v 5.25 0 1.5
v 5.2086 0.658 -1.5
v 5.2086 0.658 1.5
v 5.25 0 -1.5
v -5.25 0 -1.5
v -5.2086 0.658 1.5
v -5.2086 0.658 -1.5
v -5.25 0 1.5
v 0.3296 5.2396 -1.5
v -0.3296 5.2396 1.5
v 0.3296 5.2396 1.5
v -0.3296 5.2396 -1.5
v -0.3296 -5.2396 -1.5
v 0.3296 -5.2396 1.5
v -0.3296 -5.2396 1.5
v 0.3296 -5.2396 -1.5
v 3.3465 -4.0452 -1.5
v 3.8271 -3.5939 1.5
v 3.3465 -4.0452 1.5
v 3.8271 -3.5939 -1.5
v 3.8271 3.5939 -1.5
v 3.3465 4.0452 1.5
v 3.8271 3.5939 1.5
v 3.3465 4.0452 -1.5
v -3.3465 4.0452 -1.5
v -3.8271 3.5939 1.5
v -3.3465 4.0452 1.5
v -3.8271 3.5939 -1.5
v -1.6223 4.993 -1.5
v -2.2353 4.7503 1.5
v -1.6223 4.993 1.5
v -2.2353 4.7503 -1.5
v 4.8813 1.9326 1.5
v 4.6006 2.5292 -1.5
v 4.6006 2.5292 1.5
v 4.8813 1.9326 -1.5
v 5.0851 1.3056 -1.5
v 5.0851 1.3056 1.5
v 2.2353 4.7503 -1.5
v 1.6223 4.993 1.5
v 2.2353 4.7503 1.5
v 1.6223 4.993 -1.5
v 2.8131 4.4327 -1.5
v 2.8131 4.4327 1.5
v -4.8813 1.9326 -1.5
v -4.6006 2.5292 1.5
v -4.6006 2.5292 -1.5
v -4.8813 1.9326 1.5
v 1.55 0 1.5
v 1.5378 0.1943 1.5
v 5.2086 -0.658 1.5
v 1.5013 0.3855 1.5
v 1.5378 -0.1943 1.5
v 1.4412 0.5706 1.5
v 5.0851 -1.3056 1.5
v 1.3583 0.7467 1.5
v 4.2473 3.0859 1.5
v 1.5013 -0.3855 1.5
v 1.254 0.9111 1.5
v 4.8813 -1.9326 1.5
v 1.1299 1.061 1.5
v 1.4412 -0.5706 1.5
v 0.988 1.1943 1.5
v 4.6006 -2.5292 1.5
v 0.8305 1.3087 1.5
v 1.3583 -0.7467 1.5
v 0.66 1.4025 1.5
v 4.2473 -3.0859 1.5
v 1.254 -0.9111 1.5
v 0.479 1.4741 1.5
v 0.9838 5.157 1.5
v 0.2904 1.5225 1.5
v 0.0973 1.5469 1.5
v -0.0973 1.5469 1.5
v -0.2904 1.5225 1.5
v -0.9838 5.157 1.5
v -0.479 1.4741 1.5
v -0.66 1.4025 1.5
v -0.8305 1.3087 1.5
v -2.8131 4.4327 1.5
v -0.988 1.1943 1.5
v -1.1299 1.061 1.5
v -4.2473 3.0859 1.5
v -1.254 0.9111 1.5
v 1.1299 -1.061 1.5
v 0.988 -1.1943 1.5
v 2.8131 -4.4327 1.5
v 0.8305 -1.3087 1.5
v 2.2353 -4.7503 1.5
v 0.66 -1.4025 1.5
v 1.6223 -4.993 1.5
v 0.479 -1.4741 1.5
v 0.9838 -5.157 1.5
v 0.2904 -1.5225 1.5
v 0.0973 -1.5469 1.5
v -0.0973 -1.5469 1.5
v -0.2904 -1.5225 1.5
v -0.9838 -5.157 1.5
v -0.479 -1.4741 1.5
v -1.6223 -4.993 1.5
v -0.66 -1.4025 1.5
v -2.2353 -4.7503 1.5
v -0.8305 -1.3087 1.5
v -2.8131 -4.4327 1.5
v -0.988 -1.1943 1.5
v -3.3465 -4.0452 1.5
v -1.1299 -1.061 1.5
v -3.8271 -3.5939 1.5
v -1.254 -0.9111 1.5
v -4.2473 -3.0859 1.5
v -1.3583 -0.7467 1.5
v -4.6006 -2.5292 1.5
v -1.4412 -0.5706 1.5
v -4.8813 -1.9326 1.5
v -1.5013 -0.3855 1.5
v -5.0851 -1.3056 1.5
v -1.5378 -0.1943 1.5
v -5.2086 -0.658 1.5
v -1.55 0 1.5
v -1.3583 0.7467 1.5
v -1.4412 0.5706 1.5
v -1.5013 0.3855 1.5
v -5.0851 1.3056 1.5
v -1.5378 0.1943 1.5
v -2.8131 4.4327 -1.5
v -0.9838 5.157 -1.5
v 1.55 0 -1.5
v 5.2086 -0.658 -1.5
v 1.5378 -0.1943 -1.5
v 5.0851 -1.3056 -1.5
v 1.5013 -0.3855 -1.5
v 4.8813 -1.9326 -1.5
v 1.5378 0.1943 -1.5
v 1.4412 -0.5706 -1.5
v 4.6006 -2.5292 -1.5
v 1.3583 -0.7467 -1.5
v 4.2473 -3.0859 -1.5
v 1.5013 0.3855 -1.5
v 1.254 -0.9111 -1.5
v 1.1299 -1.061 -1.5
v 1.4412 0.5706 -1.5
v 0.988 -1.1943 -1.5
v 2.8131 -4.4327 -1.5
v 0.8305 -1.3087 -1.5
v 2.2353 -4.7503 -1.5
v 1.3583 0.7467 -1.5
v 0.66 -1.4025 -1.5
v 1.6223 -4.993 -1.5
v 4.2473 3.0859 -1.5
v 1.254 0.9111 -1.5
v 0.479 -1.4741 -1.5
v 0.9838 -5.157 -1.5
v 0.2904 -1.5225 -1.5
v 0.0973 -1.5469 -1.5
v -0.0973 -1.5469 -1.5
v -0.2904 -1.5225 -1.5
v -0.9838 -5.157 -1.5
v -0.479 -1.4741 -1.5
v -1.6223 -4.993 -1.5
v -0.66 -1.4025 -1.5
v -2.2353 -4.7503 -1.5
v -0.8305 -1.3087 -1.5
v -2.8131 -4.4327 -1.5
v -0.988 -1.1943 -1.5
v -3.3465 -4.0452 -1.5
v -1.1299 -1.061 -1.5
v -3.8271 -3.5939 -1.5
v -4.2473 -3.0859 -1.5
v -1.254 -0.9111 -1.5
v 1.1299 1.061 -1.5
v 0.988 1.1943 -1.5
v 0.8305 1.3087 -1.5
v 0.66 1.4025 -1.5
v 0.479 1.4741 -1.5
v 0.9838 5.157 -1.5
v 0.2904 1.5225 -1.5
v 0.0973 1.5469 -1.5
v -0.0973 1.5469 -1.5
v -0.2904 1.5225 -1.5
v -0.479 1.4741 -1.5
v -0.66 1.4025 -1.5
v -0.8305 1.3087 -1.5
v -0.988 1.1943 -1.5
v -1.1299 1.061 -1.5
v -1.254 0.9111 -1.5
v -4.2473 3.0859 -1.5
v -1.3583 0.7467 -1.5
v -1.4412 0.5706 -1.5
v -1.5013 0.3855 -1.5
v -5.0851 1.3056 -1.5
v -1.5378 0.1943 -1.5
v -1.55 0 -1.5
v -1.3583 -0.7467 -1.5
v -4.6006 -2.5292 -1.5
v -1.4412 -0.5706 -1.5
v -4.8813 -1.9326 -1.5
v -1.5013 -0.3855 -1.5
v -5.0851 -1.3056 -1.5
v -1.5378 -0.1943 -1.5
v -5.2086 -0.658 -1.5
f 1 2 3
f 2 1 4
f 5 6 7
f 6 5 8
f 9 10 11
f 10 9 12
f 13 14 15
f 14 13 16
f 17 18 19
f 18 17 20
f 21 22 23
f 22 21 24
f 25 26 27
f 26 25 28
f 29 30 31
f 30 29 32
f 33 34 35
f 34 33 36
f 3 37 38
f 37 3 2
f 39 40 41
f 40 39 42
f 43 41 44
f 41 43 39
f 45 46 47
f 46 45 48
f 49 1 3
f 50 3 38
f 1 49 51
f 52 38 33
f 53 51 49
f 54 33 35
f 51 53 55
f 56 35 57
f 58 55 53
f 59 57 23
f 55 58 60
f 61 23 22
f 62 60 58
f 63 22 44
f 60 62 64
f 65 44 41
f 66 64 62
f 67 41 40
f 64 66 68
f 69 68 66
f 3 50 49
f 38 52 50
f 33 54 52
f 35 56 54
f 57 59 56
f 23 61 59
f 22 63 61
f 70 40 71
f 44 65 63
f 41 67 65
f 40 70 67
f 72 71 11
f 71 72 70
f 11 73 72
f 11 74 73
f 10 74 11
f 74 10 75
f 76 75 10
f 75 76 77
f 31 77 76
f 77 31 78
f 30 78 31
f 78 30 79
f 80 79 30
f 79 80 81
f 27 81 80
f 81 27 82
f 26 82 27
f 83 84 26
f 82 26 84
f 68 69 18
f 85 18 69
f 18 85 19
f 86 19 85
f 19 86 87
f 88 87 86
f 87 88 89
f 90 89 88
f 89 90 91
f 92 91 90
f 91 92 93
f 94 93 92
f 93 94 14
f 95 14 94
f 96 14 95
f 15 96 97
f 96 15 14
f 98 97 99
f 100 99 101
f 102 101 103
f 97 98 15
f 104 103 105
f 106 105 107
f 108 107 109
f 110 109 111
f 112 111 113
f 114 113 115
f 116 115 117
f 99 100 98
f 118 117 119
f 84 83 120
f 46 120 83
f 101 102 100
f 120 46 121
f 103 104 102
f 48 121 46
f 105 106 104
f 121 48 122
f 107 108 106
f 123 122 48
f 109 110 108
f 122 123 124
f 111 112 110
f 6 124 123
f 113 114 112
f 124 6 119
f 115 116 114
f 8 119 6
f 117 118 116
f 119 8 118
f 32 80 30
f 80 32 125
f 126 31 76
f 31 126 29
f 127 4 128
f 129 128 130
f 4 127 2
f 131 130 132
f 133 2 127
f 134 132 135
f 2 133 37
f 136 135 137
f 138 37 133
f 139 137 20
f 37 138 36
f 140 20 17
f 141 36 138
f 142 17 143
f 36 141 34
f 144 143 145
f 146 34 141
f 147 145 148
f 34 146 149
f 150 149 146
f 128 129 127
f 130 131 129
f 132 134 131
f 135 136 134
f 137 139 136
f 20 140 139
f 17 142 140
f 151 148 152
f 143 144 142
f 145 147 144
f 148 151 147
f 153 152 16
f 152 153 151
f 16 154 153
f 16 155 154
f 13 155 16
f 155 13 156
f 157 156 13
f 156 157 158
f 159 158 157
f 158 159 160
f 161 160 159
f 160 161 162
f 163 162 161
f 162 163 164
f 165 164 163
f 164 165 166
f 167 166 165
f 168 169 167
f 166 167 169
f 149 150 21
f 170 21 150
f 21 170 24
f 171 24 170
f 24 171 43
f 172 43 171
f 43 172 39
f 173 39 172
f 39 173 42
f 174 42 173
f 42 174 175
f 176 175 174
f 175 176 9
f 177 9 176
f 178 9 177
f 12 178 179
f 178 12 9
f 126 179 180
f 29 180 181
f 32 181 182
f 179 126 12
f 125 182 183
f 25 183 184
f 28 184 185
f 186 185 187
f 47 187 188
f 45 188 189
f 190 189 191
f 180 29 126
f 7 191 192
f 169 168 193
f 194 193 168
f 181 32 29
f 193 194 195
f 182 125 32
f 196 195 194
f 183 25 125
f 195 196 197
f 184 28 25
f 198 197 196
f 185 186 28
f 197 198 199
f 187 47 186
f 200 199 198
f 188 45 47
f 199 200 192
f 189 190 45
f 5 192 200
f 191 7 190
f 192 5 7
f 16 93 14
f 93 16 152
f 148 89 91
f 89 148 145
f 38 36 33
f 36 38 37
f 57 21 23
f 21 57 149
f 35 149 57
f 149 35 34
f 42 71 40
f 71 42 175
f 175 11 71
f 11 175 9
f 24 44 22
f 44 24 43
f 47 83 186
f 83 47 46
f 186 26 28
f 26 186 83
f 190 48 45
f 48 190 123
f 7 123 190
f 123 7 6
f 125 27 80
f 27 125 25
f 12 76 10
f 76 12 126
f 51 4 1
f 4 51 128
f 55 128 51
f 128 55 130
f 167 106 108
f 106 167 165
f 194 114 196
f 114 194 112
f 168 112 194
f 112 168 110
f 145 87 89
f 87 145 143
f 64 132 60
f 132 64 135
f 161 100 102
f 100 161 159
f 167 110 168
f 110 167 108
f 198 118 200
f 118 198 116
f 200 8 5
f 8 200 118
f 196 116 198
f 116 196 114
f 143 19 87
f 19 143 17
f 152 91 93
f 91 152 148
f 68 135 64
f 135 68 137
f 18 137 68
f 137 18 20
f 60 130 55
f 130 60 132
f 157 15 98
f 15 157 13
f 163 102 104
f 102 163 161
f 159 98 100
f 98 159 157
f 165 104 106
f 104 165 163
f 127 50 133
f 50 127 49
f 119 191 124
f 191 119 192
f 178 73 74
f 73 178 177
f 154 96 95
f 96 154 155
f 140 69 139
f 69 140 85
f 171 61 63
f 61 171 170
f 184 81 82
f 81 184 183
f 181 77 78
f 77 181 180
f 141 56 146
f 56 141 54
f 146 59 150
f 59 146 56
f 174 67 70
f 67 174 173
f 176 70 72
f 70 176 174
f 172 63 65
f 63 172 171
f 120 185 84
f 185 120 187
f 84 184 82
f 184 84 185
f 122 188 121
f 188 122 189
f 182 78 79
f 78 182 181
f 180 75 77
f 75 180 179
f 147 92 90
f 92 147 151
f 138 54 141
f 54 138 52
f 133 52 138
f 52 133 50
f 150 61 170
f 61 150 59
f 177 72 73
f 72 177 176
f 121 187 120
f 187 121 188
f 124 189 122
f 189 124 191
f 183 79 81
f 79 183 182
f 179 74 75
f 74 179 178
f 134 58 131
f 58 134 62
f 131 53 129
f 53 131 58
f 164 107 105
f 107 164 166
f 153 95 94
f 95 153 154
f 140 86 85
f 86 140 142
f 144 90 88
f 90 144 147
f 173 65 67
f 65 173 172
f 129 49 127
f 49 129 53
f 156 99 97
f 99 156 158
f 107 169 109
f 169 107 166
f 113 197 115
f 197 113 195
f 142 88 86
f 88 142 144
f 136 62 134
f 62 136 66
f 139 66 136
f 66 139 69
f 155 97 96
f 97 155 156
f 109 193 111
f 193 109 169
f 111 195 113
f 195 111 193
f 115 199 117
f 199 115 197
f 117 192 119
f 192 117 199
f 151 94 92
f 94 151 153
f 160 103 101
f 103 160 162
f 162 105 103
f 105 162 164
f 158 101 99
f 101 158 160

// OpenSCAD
$fn = 50;


difference() {
	union() {
		translate(v = [0, 0, -1.5000000000]) {
			cylinder(h = 3, r = 5.2500000000);
		}
	}
	union() {
		translate(v = [0, 0, -100.0000000000]) {
			cylinder(h = 200, r = 1.5500000000);
		}
	}
}
